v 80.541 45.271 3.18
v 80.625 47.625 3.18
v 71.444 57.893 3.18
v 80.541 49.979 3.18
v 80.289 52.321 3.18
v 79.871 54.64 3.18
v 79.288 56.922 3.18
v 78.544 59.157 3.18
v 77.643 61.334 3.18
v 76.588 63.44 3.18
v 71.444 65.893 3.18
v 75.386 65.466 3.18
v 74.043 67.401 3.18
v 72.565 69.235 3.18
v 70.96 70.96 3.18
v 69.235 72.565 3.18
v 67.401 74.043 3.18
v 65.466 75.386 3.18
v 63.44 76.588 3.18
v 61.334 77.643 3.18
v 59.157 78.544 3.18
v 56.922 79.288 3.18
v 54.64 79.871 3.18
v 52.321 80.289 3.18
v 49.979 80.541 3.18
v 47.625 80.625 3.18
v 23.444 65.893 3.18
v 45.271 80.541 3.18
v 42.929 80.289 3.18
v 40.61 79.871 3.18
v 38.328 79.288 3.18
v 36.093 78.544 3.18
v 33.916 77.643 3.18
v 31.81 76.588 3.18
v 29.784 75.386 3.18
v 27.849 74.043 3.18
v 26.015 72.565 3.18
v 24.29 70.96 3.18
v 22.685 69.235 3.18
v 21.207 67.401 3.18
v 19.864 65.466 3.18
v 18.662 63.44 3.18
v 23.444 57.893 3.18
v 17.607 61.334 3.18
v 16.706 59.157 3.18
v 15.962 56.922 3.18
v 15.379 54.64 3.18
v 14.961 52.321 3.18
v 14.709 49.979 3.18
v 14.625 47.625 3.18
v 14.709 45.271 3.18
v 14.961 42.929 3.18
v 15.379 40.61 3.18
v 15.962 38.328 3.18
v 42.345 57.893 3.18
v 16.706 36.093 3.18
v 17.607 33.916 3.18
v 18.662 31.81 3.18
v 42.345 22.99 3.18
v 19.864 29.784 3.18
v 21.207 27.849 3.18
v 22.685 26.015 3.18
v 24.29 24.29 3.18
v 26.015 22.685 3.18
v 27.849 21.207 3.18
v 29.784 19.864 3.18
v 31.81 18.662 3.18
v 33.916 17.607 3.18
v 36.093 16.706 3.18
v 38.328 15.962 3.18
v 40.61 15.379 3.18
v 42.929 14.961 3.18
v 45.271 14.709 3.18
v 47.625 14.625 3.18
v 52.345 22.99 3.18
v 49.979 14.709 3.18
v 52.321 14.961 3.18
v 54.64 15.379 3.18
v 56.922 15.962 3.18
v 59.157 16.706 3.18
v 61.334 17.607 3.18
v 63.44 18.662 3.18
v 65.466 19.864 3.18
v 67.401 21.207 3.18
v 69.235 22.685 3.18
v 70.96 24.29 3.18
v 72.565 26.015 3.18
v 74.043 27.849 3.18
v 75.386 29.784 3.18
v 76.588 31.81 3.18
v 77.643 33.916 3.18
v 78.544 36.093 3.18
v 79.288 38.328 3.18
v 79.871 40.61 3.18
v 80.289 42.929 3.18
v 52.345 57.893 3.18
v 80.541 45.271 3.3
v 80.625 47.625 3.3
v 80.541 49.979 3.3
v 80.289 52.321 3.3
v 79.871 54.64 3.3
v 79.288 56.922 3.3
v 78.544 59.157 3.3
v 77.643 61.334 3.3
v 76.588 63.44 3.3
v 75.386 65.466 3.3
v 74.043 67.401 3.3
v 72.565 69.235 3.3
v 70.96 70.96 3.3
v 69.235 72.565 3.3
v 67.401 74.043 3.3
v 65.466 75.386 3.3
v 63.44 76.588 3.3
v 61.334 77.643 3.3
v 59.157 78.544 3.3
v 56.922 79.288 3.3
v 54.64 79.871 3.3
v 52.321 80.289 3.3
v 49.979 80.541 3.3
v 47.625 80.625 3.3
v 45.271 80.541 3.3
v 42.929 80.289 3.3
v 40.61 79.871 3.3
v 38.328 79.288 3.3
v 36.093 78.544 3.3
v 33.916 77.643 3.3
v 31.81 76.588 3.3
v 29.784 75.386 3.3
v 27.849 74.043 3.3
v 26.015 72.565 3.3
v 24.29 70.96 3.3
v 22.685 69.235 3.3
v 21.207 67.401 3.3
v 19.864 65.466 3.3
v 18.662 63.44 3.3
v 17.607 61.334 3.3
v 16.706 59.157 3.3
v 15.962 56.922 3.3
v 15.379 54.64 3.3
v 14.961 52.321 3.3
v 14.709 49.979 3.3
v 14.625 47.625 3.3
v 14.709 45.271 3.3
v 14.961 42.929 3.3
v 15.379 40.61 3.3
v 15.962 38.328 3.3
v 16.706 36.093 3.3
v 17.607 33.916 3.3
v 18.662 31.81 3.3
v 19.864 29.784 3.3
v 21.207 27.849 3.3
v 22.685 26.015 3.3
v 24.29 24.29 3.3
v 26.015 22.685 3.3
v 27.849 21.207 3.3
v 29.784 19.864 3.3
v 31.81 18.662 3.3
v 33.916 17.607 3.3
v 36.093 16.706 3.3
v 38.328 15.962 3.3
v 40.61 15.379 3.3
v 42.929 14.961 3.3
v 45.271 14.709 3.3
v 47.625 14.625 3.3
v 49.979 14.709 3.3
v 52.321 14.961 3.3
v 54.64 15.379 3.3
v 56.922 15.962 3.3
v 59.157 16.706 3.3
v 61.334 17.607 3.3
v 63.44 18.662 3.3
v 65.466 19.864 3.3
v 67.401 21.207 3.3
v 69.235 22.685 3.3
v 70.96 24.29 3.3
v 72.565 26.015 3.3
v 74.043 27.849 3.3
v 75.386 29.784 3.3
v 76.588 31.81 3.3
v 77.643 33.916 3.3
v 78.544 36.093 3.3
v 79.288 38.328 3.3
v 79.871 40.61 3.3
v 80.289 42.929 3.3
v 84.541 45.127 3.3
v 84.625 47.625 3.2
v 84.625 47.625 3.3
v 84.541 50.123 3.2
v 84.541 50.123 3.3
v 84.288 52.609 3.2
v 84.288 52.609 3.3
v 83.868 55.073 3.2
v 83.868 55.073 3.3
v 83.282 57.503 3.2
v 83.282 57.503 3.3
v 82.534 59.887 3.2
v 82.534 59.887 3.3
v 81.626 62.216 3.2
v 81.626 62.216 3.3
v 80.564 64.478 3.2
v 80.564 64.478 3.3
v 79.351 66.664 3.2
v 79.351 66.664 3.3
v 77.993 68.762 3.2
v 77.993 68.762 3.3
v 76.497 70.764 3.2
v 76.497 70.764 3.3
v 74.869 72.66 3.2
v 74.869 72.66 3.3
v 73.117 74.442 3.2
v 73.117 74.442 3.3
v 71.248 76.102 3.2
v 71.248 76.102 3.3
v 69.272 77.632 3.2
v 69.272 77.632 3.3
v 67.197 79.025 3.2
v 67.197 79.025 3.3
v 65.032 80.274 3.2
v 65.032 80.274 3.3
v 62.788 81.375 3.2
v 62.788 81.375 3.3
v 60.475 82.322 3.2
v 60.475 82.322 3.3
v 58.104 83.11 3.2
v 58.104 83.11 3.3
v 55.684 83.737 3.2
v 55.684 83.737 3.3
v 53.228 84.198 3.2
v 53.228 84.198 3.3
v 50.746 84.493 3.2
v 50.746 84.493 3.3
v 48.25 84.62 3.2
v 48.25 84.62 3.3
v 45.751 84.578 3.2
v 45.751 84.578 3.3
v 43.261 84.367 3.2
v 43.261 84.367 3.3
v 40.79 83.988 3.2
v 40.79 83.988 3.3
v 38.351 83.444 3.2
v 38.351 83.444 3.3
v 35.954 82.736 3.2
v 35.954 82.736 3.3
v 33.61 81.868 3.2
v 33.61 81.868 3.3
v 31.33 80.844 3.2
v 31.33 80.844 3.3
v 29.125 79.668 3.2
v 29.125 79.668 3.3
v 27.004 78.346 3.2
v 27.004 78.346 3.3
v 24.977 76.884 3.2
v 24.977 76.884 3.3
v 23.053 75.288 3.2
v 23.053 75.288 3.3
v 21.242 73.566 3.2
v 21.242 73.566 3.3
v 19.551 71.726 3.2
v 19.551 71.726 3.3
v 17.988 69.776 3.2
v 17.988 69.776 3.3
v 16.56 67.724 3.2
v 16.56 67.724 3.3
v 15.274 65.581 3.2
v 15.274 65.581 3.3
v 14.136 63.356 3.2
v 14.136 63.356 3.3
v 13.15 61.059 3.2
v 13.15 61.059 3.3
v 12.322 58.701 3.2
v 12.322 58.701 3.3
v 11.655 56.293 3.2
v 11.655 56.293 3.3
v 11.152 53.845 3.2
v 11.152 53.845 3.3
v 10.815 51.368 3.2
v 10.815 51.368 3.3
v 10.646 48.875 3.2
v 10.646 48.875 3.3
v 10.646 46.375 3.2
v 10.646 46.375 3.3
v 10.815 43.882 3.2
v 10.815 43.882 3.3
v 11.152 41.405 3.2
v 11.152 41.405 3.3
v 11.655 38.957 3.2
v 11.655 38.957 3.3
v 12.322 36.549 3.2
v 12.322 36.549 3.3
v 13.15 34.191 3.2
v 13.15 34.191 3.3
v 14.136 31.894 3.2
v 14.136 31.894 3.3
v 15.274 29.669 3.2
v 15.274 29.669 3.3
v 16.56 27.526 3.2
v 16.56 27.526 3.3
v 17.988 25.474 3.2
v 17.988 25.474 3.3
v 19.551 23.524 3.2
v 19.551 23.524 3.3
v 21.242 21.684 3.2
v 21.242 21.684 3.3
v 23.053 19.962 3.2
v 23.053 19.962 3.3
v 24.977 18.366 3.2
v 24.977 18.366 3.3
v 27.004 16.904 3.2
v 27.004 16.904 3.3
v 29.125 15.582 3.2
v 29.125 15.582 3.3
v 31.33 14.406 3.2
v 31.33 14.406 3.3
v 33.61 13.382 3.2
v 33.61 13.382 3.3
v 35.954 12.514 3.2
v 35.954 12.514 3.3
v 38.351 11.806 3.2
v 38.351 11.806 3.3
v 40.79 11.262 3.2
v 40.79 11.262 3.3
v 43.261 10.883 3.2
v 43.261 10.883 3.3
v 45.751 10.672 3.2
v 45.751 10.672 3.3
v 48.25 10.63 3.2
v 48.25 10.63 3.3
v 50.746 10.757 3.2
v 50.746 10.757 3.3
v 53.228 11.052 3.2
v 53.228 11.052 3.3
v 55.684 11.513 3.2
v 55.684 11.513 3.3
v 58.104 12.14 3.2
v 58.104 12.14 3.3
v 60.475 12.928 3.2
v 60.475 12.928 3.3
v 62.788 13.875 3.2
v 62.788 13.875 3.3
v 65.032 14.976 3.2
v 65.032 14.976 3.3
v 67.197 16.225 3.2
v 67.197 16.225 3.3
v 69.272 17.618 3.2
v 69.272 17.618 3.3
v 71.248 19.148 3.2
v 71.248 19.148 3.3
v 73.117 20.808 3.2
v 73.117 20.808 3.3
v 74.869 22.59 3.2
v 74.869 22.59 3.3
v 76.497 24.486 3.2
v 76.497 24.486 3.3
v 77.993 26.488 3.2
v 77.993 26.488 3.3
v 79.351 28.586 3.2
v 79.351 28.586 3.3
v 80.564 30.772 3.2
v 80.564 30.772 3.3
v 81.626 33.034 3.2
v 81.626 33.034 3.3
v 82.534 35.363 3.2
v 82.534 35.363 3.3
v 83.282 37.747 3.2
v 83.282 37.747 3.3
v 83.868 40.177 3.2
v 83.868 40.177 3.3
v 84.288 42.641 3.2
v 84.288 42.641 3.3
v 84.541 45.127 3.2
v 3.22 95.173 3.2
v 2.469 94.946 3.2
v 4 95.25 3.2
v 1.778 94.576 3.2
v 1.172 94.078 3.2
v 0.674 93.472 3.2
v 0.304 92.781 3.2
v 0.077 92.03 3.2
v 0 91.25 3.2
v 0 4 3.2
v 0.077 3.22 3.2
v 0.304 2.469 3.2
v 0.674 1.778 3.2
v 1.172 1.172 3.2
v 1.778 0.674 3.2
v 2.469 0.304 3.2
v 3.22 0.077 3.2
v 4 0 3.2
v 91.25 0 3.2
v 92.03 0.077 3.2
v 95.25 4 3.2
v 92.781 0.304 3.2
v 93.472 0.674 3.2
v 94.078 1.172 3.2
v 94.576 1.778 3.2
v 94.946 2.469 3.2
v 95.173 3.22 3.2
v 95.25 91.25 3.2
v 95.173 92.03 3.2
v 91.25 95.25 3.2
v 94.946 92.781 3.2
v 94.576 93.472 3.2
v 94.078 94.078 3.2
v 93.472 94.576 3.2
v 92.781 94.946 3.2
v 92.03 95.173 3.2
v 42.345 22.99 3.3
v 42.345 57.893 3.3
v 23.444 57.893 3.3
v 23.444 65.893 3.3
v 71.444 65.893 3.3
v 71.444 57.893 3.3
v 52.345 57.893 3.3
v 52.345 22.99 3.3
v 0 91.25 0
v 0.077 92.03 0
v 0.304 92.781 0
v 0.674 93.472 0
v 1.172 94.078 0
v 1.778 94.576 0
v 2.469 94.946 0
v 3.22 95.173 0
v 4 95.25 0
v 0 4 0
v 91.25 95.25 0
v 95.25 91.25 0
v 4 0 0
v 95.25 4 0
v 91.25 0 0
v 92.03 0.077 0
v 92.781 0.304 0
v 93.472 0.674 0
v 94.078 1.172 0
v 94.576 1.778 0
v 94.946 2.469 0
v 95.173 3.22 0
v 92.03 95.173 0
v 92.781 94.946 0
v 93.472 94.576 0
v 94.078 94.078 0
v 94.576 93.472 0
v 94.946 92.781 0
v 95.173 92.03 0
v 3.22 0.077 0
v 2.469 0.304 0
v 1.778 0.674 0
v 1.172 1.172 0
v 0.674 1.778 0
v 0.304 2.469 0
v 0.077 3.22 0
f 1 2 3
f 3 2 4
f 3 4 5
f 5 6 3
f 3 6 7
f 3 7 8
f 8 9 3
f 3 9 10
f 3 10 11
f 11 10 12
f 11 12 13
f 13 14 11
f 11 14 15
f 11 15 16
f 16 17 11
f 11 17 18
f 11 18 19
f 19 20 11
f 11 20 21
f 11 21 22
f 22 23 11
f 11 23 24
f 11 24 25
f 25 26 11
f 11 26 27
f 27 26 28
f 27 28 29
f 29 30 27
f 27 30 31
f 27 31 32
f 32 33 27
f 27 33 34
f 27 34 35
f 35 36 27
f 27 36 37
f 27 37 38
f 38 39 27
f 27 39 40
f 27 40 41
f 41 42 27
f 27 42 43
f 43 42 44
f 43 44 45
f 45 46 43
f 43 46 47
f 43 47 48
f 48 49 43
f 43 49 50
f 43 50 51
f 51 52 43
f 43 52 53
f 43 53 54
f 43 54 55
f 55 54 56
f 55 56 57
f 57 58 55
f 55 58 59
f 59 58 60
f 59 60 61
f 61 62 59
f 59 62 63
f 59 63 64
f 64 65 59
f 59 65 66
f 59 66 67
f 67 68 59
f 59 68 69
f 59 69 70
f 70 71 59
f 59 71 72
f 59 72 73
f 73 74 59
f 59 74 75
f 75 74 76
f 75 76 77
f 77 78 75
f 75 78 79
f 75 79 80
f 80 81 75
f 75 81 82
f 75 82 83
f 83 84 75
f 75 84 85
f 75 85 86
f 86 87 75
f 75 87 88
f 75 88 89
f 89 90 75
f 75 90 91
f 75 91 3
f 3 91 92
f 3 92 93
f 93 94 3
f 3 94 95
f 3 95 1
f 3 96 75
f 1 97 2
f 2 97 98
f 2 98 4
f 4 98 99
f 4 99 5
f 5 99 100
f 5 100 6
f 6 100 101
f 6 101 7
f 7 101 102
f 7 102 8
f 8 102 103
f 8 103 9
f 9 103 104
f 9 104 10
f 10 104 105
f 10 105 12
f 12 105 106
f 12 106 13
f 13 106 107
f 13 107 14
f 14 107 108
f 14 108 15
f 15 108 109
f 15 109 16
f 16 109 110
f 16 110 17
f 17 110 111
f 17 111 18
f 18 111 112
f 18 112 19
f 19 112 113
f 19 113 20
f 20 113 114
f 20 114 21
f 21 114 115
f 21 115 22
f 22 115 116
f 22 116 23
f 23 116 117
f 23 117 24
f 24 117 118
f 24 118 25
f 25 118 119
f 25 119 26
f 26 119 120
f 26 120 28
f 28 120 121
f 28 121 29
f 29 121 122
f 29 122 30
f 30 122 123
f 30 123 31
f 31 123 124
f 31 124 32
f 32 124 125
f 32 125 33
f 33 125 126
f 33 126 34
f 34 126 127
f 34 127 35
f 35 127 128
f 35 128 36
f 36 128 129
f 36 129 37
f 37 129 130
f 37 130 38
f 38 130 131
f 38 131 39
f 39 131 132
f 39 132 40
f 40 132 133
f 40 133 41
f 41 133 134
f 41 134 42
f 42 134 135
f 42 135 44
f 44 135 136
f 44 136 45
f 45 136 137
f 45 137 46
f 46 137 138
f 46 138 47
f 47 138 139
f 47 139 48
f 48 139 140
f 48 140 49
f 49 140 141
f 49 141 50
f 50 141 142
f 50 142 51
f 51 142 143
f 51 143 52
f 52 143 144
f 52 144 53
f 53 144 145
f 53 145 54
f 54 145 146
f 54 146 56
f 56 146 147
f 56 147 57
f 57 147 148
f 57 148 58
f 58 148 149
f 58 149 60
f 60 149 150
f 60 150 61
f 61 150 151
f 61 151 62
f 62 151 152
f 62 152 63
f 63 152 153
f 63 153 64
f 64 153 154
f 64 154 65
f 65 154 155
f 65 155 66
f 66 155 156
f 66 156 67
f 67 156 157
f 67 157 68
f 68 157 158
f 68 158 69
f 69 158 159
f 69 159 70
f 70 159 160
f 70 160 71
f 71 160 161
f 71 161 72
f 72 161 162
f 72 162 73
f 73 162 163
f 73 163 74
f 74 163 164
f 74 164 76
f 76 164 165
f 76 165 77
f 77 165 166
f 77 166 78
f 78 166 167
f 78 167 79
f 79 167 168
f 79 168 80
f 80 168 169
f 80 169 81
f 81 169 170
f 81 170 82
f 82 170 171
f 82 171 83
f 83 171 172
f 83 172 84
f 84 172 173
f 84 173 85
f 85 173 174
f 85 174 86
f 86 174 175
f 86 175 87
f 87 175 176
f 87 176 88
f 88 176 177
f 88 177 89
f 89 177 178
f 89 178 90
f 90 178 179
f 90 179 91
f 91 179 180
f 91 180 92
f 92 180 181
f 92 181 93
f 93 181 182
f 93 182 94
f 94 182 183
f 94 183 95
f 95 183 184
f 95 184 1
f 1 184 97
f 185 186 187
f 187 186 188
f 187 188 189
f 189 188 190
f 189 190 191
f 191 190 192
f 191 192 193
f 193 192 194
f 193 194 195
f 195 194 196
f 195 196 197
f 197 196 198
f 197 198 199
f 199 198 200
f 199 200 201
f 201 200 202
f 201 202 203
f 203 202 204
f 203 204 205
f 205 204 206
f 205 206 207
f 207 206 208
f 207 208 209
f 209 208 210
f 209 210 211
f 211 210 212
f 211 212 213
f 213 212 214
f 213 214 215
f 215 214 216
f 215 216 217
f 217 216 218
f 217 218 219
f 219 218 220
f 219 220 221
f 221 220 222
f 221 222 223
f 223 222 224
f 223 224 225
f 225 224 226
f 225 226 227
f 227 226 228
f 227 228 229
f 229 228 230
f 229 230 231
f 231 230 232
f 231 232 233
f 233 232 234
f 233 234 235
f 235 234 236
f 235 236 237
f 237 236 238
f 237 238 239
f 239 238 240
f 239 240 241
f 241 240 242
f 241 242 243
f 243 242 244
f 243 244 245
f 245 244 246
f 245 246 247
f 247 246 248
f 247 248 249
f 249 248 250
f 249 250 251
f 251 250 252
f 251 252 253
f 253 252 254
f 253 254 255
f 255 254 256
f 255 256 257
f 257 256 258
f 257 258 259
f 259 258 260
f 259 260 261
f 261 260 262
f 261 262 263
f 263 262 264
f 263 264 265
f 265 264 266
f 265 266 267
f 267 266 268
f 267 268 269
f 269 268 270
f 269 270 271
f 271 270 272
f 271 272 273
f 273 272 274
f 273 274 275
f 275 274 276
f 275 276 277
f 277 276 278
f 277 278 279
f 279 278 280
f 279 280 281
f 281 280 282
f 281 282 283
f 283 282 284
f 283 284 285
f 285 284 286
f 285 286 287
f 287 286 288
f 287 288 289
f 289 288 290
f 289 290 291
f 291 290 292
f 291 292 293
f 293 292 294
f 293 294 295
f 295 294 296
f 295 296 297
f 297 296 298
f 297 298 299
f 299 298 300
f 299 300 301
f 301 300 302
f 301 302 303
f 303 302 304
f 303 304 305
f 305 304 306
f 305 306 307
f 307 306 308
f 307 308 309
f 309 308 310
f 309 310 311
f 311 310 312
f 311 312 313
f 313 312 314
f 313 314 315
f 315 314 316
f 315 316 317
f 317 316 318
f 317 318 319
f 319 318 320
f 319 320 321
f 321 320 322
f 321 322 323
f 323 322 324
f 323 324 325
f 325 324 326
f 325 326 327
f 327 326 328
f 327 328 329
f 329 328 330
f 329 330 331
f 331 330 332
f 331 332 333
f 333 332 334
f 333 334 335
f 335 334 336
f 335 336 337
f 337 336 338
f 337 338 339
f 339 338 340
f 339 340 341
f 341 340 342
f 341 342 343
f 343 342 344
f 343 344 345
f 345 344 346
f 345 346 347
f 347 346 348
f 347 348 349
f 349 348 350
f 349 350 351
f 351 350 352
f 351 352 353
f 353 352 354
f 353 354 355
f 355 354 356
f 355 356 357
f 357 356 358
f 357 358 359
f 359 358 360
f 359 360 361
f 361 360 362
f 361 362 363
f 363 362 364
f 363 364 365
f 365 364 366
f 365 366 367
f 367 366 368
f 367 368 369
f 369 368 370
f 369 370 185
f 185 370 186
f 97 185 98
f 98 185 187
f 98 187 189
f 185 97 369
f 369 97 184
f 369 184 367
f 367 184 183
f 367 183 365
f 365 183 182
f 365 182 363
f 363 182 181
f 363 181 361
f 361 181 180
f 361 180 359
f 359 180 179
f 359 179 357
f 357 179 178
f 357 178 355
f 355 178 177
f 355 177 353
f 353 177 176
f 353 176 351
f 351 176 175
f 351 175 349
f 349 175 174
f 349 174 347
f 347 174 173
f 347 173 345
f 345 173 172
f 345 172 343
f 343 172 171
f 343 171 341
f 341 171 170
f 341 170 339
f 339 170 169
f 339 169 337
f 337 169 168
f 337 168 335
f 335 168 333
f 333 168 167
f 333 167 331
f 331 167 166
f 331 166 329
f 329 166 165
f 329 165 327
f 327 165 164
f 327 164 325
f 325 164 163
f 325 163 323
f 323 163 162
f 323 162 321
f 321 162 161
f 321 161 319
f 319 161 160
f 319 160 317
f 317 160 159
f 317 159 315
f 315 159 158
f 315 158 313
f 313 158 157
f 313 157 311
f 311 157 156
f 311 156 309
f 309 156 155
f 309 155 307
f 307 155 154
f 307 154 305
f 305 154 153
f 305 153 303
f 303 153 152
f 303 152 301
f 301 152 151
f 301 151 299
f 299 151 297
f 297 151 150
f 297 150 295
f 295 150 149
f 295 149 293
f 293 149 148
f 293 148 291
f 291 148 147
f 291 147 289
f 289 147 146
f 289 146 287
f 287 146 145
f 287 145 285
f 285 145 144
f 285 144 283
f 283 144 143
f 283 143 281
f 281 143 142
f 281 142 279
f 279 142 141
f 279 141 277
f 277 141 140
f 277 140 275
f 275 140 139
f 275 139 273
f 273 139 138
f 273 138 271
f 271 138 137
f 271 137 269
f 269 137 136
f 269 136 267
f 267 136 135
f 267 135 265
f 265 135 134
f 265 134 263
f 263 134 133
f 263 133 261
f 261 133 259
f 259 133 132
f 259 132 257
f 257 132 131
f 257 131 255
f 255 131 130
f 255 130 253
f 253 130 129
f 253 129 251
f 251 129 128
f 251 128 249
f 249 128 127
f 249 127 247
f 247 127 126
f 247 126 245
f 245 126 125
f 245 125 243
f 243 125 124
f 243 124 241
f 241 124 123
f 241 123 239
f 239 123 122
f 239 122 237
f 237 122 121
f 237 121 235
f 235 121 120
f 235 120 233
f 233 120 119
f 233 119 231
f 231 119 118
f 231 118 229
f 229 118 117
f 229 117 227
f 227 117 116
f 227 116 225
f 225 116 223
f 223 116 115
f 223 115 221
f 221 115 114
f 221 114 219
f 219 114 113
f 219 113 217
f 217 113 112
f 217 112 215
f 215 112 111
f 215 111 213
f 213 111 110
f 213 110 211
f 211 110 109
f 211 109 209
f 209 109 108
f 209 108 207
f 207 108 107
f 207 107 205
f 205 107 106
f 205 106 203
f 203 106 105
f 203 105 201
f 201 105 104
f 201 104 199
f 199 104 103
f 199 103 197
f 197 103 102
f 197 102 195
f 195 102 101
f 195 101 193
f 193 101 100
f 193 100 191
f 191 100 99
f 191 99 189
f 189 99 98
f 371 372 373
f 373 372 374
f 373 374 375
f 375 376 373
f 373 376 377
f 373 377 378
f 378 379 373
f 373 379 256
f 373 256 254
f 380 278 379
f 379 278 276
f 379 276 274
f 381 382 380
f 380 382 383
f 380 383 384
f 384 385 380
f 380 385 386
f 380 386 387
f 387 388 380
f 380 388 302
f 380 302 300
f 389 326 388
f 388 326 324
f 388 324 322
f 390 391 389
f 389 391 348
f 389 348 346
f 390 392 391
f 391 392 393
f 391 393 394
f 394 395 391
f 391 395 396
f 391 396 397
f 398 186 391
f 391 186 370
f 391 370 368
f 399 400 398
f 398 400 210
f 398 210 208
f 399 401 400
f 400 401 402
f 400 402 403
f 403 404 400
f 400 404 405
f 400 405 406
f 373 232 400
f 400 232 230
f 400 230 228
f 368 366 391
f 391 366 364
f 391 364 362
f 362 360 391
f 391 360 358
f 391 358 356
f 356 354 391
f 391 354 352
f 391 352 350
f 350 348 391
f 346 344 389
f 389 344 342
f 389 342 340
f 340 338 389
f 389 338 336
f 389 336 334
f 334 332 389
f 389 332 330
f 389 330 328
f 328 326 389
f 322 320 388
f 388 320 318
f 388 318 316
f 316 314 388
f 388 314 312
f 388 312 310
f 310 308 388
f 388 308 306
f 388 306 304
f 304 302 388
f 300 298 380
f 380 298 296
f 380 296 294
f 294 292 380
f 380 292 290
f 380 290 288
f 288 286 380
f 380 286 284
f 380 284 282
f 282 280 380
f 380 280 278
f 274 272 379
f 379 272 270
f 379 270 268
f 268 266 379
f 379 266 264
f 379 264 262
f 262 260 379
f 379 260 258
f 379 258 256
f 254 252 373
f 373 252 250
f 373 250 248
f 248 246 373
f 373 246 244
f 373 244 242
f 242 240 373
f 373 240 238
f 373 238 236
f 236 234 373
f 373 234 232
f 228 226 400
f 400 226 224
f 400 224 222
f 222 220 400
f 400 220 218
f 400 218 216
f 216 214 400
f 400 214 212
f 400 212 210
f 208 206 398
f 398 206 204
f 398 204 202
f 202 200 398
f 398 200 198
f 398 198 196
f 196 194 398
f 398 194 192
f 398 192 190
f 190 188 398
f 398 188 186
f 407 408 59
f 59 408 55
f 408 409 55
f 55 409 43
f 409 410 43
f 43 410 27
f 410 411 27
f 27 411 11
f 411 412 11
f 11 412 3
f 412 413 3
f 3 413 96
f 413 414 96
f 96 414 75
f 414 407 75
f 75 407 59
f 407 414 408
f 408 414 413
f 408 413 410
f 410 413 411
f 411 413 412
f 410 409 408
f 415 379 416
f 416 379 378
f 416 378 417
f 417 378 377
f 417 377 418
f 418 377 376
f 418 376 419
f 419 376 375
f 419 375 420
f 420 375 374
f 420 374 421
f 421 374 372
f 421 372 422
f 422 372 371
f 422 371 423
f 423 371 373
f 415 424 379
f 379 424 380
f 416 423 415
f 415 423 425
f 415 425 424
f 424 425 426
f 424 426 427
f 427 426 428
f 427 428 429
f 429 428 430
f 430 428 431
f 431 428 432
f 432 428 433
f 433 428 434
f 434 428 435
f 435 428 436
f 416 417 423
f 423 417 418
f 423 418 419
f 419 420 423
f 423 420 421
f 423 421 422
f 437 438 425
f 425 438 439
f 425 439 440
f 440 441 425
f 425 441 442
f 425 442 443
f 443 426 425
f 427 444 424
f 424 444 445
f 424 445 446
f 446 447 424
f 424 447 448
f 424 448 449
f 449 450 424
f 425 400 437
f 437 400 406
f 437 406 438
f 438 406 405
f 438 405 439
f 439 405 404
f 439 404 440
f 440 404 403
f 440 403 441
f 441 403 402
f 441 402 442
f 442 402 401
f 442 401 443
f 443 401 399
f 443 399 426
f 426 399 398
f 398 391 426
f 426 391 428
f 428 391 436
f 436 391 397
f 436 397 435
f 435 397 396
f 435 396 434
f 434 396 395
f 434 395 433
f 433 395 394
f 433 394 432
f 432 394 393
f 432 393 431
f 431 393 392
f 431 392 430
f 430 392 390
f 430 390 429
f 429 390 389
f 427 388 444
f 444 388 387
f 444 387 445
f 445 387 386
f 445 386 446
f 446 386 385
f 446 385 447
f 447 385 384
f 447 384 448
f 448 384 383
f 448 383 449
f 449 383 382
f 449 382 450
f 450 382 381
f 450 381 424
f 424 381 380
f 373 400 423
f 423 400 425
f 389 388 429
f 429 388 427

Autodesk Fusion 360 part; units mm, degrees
sketch "Sketch1" plane through (0, 0, 0) normal (0, 0, 1) x (1, 0, 0)
  line L0 (0, 0) -> (95.25, 0)
  line L1 (95.25, 0) -> (95.25, 95.25)
  line L2 (95.25, 95.25) -> (0, 95.25)
  line L3 (0, 95.25) -> (0, 0)
  dimension "d1" = 95.25
  dimension "d2" = 95.25
extrude "Extrude1" add sketch "Sketch1" along normal blind 3.2
sketch "Sketch2" plane through (0, 0, 3.2) normal (0, 0, 1) x (-1, 0, 0)
  line L0 (0, -95.25) -> (0, 0)
  line L1 (0, 0) -> (-95.25, 0)
  line L2 (-95.25, 0) -> (-95.25, -95.25)
  line L3 (-95.25, -95.25) -> (0, -95.25)
  circle A0 centre (-47.625, -47.625) radius 33
  circle A1 centre (-47.625, -47.625) radius 37
  line L4 (-23.4439, -57.8934) -> (-23.4439, -65.8934)
  line L5 (-23.4439, -65.8934) -> (-71.4439, -65.8934)
  line L6 (-71.4439, -65.8934) -> (-71.4439, -57.8934)
  line L7 (-42.3445, -22.9899) -> (-52.3445, -22.9899)
  line L8 (-52.3445, -22.9899) -> (-52.3445, -57.8934)
  line L9 (-42.3445, -57.8934) -> (-42.3445, -22.9899)
  line L10 (-71.4439, -57.8934) -> (-52.3445, -57.8934)
  line L11 (-42.3445, -57.8934) -> (-23.4439, -57.8934)
  point P0 (-47.625, -68.4053)
  point P1 (-47.625, -47.625)
  dimension "d5" = 66
  dimension "d6" = 4
  dimension "d9" = 48
  dimension "d10" = 8
fillet "Fillet1" radius 4 1 edges at (0, 0, 1.6)
fillet "Fillet2" radius 4 1 edges at (95.25, 0, 1.6)
fillet "Fillet3" radius 4 1 edges at (95.25, 95.25, 1.6)
fillet "Fillet4" radius 4 1 edges at (0, 95.25, 1.6)
extrude "Extrude2" add sketch "Sketch2" along normal blind 0.1 contours A1 | L4 L5 L6 L7 L8 L9 L10 L11
extrude "Extrude3" cut 1 faces at (59.86, 36.6396, 3.2) along direction (0, 0, -1) blind 0.01
extrude "Extrude4" cut 1 faces at (59.86, 36.6396, 3.19) along direction (0, 0, -1) blind 0.01
